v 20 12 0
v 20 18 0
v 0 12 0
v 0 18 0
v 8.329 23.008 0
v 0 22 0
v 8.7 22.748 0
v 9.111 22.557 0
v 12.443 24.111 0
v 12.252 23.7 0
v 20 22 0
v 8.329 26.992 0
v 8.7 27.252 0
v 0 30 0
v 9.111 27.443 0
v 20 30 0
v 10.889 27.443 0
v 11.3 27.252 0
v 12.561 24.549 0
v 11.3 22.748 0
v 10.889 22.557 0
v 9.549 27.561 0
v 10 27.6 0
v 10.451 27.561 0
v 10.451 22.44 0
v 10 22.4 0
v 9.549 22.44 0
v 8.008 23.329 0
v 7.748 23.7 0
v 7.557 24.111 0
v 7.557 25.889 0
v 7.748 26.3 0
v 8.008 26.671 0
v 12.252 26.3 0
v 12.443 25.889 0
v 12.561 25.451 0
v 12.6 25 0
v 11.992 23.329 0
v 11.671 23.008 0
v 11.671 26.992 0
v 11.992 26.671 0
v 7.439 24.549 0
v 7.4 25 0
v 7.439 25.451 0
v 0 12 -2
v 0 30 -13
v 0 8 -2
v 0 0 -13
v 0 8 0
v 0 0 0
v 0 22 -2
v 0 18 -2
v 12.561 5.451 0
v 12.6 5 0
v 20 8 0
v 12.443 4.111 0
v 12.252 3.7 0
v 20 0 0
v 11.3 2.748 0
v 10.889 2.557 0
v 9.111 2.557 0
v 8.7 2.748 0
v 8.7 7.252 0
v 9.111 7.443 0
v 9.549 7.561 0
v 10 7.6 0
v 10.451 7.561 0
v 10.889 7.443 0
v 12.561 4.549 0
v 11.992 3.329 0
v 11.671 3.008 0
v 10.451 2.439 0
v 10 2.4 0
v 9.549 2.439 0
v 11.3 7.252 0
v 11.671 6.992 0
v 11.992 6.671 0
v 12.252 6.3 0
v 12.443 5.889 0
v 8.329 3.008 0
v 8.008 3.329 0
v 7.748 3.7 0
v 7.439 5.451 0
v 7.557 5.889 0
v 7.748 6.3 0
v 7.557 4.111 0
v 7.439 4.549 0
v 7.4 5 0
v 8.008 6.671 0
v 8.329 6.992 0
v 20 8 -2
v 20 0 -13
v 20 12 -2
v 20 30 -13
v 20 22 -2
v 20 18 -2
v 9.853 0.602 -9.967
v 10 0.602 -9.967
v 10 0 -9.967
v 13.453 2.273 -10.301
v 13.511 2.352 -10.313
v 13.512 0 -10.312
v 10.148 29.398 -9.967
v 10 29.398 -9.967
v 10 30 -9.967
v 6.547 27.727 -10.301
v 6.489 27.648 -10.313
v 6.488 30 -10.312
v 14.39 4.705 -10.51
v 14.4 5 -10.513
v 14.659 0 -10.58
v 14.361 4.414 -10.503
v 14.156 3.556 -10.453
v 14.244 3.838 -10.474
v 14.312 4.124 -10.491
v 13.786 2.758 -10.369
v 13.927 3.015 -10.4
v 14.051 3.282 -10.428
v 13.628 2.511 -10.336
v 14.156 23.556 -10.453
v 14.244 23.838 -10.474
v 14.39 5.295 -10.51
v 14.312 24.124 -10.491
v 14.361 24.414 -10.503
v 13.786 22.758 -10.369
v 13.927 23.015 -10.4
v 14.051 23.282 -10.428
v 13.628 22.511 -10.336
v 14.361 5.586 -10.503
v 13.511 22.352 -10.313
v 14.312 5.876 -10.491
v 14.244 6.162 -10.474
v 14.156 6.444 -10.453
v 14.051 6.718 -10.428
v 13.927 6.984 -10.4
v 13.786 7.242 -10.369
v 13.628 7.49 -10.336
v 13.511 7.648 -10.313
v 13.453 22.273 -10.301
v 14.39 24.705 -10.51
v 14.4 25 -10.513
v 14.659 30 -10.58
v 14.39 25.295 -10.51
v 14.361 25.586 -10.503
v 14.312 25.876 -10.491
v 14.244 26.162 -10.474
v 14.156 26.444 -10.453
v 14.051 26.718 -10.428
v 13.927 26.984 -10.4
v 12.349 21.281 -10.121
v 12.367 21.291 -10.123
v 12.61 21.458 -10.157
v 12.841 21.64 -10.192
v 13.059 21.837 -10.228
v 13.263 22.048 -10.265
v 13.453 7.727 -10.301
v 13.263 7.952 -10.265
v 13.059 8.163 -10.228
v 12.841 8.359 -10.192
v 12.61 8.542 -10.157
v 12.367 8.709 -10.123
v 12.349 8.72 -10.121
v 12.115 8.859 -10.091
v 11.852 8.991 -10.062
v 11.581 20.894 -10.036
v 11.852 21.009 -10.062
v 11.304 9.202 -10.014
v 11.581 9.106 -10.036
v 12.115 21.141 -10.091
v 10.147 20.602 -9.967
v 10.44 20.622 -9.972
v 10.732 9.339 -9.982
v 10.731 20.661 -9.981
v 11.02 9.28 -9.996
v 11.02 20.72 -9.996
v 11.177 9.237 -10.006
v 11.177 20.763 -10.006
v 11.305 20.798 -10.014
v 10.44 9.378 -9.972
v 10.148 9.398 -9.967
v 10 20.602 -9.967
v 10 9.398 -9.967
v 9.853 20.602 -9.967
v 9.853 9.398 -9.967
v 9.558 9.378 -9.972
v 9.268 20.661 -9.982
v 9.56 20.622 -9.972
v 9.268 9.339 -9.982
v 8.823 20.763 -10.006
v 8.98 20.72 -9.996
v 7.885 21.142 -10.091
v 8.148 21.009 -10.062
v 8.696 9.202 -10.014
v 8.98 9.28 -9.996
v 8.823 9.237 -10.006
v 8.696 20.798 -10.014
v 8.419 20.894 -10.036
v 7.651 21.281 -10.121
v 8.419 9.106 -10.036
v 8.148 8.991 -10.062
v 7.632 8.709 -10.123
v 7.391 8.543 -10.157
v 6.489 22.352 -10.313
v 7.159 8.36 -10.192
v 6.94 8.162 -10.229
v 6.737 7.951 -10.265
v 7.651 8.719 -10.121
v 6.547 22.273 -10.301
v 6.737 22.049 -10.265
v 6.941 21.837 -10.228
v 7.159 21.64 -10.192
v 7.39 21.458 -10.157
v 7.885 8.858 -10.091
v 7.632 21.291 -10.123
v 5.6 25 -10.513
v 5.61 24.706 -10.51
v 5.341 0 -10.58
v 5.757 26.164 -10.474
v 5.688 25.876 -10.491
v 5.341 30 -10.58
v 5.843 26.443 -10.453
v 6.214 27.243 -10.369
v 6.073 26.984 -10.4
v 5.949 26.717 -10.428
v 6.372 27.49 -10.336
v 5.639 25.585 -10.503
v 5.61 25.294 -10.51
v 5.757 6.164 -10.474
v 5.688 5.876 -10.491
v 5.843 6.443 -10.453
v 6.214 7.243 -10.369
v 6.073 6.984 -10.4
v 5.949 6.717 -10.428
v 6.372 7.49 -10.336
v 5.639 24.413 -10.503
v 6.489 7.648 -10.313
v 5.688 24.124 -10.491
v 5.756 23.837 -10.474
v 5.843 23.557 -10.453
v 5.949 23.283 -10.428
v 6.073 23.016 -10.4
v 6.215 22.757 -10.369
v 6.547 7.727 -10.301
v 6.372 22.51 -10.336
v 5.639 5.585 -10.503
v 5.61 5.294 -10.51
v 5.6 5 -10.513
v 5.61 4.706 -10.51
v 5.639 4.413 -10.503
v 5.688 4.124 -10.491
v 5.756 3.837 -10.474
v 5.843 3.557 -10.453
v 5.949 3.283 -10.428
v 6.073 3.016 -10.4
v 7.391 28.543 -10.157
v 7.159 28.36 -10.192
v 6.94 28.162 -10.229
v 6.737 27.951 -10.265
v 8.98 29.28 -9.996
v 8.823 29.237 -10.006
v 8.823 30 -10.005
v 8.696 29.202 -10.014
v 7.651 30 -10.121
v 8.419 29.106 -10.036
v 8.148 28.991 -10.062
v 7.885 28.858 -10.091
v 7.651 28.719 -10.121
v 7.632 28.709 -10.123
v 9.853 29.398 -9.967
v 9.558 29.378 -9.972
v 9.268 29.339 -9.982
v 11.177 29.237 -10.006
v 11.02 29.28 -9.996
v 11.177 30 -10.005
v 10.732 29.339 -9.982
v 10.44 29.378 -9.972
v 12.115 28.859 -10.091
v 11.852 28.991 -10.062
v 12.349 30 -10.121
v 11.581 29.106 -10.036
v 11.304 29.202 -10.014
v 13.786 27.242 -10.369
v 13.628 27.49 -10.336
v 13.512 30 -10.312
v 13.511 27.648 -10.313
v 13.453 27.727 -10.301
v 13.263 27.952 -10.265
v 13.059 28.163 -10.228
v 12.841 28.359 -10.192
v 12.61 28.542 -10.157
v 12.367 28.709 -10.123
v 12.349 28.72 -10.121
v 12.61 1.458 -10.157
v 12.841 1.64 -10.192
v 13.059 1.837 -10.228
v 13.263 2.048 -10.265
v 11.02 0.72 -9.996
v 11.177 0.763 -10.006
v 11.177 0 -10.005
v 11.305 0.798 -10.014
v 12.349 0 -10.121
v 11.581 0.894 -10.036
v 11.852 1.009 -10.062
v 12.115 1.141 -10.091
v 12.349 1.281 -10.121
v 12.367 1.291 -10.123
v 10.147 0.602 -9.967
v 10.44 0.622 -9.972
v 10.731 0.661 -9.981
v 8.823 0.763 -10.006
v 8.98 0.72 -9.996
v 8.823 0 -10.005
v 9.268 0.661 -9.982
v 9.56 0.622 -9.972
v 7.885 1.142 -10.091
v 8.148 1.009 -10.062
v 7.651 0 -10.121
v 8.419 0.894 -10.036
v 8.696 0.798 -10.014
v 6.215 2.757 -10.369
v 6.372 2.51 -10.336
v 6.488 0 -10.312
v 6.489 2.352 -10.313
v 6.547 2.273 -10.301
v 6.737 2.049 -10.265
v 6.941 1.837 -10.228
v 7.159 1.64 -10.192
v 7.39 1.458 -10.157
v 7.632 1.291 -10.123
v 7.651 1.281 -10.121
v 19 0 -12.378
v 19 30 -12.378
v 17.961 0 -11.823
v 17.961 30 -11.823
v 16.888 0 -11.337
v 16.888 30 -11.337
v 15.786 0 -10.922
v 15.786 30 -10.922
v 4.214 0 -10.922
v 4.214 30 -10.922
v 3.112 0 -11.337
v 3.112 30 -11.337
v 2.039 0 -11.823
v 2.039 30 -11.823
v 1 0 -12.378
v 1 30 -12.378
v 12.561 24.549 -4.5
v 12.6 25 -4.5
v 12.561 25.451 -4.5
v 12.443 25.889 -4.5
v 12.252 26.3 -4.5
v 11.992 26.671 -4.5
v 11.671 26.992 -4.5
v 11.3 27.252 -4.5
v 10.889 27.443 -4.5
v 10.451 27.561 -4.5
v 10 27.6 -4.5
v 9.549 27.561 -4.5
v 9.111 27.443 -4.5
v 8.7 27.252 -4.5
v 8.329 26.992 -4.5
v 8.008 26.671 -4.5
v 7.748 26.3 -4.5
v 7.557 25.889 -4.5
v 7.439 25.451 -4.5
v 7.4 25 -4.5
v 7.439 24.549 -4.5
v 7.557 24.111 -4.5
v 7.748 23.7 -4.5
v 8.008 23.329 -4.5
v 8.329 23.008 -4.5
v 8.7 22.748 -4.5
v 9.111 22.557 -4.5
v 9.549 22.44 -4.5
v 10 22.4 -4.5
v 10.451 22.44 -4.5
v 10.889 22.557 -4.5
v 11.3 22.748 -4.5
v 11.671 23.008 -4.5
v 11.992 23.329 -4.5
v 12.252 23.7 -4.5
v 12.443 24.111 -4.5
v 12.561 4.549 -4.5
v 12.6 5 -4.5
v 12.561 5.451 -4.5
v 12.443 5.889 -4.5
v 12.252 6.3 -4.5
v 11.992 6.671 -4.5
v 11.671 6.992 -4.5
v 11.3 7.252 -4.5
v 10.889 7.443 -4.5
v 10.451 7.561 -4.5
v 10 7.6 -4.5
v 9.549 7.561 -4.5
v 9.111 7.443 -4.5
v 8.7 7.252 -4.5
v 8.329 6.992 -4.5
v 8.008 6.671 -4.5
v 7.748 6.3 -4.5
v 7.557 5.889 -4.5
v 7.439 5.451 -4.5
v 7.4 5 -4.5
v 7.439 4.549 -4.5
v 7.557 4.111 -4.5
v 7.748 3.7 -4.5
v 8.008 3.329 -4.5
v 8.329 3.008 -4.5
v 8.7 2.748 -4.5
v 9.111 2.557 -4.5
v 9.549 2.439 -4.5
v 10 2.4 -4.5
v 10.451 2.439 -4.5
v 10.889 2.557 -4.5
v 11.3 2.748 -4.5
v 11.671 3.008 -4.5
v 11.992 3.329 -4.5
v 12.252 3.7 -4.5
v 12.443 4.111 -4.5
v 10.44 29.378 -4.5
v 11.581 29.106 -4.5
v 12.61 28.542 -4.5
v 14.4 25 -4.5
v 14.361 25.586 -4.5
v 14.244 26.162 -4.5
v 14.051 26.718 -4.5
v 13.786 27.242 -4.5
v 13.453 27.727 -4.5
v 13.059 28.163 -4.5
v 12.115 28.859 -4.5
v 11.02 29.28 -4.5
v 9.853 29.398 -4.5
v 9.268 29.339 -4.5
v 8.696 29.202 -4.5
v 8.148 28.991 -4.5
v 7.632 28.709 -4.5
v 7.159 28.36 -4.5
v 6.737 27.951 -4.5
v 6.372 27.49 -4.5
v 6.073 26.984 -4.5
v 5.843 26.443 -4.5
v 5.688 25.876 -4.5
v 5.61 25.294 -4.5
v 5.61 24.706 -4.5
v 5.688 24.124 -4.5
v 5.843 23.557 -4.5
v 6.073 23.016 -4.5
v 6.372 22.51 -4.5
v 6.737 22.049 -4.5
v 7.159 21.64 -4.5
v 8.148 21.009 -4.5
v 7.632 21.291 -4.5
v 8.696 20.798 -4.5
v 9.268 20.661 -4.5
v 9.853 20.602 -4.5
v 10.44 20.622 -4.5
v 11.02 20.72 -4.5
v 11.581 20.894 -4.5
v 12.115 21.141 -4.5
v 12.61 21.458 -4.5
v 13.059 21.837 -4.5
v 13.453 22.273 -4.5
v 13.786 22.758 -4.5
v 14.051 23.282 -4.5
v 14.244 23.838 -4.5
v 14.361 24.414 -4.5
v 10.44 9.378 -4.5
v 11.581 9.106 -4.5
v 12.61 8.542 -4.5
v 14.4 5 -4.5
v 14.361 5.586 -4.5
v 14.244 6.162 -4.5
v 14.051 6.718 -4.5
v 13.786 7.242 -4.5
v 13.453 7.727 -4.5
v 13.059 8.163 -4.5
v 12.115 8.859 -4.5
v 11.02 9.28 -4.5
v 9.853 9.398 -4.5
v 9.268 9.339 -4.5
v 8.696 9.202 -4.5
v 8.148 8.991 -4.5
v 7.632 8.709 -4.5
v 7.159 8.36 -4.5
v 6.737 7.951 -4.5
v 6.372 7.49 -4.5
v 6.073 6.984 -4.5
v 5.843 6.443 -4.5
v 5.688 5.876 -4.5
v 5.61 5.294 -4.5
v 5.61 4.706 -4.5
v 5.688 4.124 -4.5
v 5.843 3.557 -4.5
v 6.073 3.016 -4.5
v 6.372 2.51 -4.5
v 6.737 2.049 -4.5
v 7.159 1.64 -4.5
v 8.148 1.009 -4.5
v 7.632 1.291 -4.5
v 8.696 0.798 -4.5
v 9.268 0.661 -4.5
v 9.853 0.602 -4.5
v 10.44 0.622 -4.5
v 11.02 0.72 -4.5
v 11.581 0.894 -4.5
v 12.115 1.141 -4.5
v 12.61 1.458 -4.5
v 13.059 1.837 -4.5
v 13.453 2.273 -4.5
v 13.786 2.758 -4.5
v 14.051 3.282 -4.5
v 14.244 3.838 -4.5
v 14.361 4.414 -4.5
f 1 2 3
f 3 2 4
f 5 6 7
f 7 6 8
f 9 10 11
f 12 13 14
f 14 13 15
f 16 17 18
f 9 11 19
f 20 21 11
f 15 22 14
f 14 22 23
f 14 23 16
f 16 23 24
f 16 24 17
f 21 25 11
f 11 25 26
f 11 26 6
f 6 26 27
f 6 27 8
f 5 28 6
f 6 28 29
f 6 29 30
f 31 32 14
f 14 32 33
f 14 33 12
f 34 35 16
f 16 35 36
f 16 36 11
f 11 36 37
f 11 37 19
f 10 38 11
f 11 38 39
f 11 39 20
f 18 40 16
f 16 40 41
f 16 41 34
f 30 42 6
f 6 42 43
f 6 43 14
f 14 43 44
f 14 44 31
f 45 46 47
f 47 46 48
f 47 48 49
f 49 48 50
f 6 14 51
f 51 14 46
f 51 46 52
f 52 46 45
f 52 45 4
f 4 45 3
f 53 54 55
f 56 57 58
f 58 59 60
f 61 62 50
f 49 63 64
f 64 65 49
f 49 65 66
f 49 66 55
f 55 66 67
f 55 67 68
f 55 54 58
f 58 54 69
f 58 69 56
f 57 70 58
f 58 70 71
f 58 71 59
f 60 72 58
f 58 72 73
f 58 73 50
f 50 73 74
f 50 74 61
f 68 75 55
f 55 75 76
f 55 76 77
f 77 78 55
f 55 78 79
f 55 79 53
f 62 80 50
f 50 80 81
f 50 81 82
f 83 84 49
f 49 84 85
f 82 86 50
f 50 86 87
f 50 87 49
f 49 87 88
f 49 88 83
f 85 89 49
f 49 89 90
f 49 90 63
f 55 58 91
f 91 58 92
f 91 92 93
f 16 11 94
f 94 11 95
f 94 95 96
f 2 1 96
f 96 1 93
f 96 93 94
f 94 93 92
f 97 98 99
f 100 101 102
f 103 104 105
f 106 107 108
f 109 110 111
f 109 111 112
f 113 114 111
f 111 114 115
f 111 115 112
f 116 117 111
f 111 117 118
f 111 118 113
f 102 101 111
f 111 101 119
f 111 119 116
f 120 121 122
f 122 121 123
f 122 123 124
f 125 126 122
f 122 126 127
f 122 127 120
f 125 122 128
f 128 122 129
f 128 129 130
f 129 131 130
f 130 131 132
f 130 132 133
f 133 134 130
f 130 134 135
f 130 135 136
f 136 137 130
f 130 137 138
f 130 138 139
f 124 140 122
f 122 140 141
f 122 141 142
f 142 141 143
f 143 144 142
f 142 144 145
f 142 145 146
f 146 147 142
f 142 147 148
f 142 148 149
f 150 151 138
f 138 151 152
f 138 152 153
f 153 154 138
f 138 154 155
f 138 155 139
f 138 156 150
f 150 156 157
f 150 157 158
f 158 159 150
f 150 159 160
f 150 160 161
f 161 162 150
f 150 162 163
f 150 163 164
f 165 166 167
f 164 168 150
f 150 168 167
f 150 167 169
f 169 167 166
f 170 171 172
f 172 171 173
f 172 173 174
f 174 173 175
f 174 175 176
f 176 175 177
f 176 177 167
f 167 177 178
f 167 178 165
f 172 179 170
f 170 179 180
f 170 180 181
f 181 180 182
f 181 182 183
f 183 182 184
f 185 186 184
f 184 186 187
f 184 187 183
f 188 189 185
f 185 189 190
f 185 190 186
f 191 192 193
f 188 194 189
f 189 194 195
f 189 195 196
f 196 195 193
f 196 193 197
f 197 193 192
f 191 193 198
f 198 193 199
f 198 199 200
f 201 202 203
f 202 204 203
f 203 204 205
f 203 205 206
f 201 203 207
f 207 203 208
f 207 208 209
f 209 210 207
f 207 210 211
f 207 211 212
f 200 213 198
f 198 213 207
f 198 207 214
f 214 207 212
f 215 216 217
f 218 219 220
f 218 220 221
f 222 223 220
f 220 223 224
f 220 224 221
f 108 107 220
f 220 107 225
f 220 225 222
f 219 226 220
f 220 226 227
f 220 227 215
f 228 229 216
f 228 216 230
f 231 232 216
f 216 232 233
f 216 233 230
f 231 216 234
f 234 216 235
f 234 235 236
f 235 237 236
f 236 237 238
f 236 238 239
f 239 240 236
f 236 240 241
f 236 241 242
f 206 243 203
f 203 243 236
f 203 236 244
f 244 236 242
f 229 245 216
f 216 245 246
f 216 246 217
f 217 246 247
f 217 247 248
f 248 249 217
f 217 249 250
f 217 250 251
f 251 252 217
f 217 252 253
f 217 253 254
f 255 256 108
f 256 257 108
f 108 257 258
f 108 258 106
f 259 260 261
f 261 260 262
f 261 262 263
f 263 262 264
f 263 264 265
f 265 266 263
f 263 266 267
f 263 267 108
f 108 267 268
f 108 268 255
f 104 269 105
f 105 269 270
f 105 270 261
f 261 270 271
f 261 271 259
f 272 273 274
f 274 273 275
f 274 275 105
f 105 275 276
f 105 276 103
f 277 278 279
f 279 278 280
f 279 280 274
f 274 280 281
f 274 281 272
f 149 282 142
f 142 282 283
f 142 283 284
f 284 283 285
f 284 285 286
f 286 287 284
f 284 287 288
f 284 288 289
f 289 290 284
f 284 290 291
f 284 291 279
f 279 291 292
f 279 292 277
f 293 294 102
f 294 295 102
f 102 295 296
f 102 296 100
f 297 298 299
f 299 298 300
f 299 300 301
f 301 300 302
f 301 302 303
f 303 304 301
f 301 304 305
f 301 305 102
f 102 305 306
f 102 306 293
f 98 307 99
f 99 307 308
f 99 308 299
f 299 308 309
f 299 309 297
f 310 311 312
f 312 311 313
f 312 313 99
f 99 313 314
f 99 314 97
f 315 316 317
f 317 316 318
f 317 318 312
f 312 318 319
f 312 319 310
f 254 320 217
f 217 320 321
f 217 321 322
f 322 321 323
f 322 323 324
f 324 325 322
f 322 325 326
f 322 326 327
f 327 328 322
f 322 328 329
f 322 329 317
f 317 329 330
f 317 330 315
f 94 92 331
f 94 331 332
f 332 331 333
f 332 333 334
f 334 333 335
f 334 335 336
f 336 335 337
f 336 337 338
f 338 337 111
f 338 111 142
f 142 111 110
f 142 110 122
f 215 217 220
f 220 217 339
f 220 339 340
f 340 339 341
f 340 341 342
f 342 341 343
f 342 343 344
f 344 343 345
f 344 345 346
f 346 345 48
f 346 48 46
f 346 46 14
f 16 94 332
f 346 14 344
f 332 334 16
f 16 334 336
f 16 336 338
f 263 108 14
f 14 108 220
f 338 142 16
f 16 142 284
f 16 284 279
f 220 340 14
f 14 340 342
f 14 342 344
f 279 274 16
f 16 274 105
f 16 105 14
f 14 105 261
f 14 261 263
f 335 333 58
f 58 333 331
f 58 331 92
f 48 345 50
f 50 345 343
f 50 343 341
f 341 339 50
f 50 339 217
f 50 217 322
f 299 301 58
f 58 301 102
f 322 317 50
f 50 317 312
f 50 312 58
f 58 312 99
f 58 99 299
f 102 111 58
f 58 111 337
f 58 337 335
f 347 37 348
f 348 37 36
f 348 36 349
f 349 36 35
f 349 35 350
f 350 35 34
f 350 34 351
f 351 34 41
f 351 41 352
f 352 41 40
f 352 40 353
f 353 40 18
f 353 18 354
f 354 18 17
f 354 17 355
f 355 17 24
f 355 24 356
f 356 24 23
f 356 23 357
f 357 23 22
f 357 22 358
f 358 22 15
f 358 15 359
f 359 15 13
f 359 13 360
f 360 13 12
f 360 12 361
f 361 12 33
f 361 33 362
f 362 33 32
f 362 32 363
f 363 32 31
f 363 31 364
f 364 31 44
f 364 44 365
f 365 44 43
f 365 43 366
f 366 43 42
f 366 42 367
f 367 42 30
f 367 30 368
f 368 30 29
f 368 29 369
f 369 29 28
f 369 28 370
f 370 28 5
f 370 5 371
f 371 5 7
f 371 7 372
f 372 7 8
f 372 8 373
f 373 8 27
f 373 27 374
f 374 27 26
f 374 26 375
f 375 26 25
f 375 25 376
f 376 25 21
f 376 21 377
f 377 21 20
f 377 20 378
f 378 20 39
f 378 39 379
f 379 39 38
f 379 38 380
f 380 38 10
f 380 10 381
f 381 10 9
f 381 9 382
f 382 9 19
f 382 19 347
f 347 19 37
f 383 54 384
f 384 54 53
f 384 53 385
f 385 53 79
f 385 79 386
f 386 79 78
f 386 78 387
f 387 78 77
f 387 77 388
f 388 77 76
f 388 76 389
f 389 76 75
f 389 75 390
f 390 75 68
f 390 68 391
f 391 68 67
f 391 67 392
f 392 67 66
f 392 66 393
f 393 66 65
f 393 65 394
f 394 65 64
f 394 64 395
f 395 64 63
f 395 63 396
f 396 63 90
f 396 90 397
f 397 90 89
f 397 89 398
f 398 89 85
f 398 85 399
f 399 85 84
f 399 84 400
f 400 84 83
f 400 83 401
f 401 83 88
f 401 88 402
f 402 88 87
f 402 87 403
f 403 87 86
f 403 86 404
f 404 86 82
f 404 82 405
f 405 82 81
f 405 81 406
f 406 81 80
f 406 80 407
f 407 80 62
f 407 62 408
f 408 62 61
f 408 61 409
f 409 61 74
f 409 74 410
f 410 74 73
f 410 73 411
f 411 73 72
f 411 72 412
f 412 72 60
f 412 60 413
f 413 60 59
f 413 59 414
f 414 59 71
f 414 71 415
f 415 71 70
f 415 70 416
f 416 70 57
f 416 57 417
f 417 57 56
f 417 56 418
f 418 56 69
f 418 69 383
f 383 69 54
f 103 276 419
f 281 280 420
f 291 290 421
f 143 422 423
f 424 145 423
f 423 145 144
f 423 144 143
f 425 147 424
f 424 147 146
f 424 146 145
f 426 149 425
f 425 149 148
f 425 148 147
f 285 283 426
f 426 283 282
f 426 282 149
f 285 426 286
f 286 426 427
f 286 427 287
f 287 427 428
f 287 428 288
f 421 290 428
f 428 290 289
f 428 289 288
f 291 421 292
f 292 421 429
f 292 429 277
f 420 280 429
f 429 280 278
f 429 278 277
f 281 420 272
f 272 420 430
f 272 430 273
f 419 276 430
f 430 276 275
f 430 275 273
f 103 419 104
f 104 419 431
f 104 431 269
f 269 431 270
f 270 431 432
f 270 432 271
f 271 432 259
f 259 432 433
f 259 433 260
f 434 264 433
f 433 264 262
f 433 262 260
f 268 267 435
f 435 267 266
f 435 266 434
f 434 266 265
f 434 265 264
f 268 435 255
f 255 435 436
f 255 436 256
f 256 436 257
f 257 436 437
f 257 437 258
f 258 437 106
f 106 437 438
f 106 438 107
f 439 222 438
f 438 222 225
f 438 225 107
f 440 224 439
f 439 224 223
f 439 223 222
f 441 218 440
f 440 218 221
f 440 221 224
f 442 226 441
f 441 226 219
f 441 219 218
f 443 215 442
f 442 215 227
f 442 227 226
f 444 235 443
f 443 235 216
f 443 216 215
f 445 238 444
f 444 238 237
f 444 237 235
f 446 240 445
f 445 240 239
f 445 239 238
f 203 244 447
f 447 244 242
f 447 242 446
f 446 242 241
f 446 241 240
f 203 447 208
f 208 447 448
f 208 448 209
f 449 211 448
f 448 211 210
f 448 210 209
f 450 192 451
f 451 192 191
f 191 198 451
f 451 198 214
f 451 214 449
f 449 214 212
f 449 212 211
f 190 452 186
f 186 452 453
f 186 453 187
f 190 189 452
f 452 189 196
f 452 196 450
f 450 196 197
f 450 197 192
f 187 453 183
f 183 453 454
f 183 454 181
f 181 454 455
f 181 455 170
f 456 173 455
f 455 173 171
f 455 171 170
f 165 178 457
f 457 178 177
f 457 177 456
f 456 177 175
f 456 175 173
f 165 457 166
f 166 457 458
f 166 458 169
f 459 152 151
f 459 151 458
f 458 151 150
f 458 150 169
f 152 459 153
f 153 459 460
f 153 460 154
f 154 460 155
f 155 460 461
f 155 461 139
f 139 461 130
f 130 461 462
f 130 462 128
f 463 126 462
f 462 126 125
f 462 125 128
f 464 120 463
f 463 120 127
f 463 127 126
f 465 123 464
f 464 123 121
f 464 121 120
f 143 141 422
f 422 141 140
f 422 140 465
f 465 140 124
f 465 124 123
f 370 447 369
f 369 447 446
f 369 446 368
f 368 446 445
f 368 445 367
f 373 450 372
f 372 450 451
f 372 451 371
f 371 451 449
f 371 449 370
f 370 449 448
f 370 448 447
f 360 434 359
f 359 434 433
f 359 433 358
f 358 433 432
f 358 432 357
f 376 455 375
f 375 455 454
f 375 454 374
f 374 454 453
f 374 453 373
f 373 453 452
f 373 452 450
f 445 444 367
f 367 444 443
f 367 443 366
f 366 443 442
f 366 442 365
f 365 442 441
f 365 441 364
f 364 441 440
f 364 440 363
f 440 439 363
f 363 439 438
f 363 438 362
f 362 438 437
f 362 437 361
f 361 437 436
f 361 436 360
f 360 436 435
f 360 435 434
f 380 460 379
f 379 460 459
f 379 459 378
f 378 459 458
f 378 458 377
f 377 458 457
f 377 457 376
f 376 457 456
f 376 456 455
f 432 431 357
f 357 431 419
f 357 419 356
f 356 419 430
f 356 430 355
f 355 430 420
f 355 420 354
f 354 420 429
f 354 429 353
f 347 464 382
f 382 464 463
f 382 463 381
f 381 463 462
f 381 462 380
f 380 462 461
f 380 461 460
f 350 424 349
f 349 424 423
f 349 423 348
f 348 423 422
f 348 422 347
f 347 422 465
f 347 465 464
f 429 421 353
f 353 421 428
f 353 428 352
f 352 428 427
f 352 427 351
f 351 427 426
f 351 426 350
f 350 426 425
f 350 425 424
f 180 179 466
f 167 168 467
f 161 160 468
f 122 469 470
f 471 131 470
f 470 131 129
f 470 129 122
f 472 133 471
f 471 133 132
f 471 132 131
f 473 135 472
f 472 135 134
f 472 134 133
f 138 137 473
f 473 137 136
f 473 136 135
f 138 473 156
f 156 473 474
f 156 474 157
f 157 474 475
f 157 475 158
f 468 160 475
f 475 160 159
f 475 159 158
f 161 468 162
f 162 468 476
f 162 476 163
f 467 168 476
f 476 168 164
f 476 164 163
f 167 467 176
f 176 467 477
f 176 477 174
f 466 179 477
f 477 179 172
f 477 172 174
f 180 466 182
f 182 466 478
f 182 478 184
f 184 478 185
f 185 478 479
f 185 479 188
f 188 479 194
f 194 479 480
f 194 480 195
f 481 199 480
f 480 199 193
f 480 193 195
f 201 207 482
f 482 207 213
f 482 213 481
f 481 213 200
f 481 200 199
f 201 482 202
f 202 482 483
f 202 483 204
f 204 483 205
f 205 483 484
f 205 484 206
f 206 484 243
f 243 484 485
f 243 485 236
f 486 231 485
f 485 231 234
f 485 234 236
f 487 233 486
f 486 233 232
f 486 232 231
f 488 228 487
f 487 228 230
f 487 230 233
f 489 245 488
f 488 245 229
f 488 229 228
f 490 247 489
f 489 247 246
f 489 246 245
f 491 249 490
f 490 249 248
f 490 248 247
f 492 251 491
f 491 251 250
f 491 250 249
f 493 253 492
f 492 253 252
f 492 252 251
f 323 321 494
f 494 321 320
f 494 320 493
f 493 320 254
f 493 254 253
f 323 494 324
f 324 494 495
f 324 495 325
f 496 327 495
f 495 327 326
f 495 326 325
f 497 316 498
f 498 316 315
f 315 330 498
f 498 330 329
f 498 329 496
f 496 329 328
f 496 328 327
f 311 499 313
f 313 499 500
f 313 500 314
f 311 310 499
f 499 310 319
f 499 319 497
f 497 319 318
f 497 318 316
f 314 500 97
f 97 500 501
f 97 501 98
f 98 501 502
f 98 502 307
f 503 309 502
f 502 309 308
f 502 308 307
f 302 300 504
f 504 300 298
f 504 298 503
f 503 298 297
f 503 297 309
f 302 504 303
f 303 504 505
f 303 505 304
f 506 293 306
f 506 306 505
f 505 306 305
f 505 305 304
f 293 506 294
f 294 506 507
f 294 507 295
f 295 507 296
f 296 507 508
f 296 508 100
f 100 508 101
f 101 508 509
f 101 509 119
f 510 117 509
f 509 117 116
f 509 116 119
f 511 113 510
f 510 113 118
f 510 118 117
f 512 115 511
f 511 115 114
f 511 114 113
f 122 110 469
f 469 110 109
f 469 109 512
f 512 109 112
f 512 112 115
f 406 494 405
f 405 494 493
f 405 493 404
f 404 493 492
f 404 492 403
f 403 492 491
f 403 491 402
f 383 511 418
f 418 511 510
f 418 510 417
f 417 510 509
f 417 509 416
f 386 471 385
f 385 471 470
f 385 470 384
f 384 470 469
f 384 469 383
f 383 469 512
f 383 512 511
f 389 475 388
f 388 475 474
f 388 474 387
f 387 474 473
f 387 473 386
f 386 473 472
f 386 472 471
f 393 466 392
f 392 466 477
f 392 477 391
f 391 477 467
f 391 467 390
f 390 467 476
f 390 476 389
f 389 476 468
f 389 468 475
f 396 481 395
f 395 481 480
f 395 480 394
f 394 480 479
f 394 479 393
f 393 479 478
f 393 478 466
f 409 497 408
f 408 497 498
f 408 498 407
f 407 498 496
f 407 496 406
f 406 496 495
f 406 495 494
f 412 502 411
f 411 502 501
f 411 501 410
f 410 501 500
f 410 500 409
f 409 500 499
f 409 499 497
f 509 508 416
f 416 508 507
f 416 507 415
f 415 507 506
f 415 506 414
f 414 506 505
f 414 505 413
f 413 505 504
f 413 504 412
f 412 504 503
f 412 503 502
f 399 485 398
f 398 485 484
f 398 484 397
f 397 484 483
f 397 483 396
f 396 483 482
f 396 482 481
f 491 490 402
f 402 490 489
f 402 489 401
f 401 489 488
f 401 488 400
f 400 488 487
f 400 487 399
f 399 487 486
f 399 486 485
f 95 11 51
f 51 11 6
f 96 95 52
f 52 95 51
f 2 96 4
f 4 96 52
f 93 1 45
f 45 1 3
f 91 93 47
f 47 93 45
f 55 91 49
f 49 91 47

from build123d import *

# Parameters (mm, degrees)
BOSS_EXTRUDE1_DEPTH = 30
CUT_EXTRUDE1_REACH  = 15
SKETCH2_R           = 2.6
CUT_EXTRUDE2_REACH  = 19.5
CUT_EXTRUDE2_START  = -4.5
SKETCH3_R           = 4.4
CUT_EXTRUDE3_REACH  = 22
SKETCH4_W           = 2
SKETCH4_H           = 4


with BuildPart() as part:
    # Sketch1 → Boss-Extrude1 (new body)
    with BuildSketch(Plane(origin=(0, 0, 0), x_dir=(1, 0, 0), z_dir=(0, 1, 0))):
        with BuildLine():
            Line((0, 0), (20, 0))
            Line((20, 0), (20, 13))
            ThreePointArc((20, 13), (10, 9.966629547), (0, 13))
            Line((0, 13), (0, 0))
        make_face()
    extrude(amount=BOSS_EXTRUDE1_DEPTH)

    # Sketch2 → Cut-Extrude1 (cut, up to next)
    with BuildSketch(Plane.XY, mode=Mode.PRIVATE) as cut_extrude1_sk1:
        with Locations((10, 25)):
            Circle(SKETCH2_R)
    cut_extrude1_tool1 = extrude(cut_extrude1_sk1.sketch, amount=-CUT_EXTRUDE1_REACH, mode=Mode.PRIVATE) & part.part
    add(cut_extrude1_tool1.solids().sort_by_distance((10, 25, 0))[0], mode=Mode.SUBTRACT)
    # Sketch2 → Cut-Extrude1 (cut, up to next)
    with BuildSketch(Plane.XY, mode=Mode.PRIVATE) as cut_extrude1_sk2:
        with Locations((10, 5)):
            Circle(SKETCH2_R)
    cut_extrude1_tool2 = extrude(cut_extrude1_sk2.sketch, amount=-CUT_EXTRUDE1_REACH, mode=Mode.PRIVATE) & part.part
    add(cut_extrude1_tool2.solids().sort_by_distance((10, 5, 0))[0], mode=Mode.SUBTRACT)

    # Sketch3 → Cut-Extrude2 (cut, up to next)
    with BuildSketch(Plane.XY.offset(CUT_EXTRUDE2_START), mode=Mode.PRIVATE) as cut_extrude2_sk1:
        with Locations((10, 25)):
            Circle(SKETCH3_R)
    cut_extrude2_tool1 = extrude(cut_extrude2_sk1.sketch, amount=-CUT_EXTRUDE2_REACH, mode=Mode.PRIVATE) & part.part
    add(cut_extrude2_tool1.solids().sort_by_distance((10, 25, -4.5))[0], mode=Mode.SUBTRACT)
    # Sketch3 → Cut-Extrude2 (cut, up to next)
    with BuildSketch(Plane.XY.offset(CUT_EXTRUDE2_START), mode=Mode.PRIVATE) as cut_extrude2_sk2:
        with Locations((10, 5)):
            Circle(SKETCH3_R)
    cut_extrude2_tool2 = extrude(cut_extrude2_sk2.sketch, amount=-CUT_EXTRUDE2_REACH, mode=Mode.PRIVATE) & part.part
    add(cut_extrude2_tool2.solids().sort_by_distance((10, 5, -4.5))[0], mode=Mode.SUBTRACT)

    # Sketch4 → Cut-Extrude3 (cut, up to next)
    with BuildSketch(Plane(origin=(20, 0, 0), x_dir=(0, 0, -1), z_dir=(1, 0, 0)), mode=Mode.PRIVATE) as cut_extrude3_sk1:
        with Locations((1, 20)):
            Rectangle(SKETCH4_W, SKETCH4_H)
    cut_extrude3_tool1 = extrude(cut_extrude3_sk1.sketch, amount=-CUT_EXTRUDE3_REACH, mode=Mode.PRIVATE) & part.part
    add(cut_extrude3_tool1.solids().sort_by_distance((20, 20, -1))[0], mode=Mode.SUBTRACT)
    # Sketch4 → Cut-Extrude3 (cut, up to next)
    with BuildSketch(Plane(origin=(20, 0, 0), x_dir=(0, 0, -1), z_dir=(1, 0, 0)), mode=Mode.PRIVATE) as cut_extrude3_sk2:
        with Locations((1, 10)):
            Rectangle(SKETCH4_W, SKETCH4_H)
    cut_extrude3_tool2 = extrude(cut_extrude3_sk2.sketch, amount=-CUT_EXTRUDE3_REACH, mode=Mode.PRIVATE) & part.part
    add(cut_extrude3_tool2.solids().sort_by_distance((20, 10, -1))[0], mode=Mode.SUBTRACT)


solid = part.part
